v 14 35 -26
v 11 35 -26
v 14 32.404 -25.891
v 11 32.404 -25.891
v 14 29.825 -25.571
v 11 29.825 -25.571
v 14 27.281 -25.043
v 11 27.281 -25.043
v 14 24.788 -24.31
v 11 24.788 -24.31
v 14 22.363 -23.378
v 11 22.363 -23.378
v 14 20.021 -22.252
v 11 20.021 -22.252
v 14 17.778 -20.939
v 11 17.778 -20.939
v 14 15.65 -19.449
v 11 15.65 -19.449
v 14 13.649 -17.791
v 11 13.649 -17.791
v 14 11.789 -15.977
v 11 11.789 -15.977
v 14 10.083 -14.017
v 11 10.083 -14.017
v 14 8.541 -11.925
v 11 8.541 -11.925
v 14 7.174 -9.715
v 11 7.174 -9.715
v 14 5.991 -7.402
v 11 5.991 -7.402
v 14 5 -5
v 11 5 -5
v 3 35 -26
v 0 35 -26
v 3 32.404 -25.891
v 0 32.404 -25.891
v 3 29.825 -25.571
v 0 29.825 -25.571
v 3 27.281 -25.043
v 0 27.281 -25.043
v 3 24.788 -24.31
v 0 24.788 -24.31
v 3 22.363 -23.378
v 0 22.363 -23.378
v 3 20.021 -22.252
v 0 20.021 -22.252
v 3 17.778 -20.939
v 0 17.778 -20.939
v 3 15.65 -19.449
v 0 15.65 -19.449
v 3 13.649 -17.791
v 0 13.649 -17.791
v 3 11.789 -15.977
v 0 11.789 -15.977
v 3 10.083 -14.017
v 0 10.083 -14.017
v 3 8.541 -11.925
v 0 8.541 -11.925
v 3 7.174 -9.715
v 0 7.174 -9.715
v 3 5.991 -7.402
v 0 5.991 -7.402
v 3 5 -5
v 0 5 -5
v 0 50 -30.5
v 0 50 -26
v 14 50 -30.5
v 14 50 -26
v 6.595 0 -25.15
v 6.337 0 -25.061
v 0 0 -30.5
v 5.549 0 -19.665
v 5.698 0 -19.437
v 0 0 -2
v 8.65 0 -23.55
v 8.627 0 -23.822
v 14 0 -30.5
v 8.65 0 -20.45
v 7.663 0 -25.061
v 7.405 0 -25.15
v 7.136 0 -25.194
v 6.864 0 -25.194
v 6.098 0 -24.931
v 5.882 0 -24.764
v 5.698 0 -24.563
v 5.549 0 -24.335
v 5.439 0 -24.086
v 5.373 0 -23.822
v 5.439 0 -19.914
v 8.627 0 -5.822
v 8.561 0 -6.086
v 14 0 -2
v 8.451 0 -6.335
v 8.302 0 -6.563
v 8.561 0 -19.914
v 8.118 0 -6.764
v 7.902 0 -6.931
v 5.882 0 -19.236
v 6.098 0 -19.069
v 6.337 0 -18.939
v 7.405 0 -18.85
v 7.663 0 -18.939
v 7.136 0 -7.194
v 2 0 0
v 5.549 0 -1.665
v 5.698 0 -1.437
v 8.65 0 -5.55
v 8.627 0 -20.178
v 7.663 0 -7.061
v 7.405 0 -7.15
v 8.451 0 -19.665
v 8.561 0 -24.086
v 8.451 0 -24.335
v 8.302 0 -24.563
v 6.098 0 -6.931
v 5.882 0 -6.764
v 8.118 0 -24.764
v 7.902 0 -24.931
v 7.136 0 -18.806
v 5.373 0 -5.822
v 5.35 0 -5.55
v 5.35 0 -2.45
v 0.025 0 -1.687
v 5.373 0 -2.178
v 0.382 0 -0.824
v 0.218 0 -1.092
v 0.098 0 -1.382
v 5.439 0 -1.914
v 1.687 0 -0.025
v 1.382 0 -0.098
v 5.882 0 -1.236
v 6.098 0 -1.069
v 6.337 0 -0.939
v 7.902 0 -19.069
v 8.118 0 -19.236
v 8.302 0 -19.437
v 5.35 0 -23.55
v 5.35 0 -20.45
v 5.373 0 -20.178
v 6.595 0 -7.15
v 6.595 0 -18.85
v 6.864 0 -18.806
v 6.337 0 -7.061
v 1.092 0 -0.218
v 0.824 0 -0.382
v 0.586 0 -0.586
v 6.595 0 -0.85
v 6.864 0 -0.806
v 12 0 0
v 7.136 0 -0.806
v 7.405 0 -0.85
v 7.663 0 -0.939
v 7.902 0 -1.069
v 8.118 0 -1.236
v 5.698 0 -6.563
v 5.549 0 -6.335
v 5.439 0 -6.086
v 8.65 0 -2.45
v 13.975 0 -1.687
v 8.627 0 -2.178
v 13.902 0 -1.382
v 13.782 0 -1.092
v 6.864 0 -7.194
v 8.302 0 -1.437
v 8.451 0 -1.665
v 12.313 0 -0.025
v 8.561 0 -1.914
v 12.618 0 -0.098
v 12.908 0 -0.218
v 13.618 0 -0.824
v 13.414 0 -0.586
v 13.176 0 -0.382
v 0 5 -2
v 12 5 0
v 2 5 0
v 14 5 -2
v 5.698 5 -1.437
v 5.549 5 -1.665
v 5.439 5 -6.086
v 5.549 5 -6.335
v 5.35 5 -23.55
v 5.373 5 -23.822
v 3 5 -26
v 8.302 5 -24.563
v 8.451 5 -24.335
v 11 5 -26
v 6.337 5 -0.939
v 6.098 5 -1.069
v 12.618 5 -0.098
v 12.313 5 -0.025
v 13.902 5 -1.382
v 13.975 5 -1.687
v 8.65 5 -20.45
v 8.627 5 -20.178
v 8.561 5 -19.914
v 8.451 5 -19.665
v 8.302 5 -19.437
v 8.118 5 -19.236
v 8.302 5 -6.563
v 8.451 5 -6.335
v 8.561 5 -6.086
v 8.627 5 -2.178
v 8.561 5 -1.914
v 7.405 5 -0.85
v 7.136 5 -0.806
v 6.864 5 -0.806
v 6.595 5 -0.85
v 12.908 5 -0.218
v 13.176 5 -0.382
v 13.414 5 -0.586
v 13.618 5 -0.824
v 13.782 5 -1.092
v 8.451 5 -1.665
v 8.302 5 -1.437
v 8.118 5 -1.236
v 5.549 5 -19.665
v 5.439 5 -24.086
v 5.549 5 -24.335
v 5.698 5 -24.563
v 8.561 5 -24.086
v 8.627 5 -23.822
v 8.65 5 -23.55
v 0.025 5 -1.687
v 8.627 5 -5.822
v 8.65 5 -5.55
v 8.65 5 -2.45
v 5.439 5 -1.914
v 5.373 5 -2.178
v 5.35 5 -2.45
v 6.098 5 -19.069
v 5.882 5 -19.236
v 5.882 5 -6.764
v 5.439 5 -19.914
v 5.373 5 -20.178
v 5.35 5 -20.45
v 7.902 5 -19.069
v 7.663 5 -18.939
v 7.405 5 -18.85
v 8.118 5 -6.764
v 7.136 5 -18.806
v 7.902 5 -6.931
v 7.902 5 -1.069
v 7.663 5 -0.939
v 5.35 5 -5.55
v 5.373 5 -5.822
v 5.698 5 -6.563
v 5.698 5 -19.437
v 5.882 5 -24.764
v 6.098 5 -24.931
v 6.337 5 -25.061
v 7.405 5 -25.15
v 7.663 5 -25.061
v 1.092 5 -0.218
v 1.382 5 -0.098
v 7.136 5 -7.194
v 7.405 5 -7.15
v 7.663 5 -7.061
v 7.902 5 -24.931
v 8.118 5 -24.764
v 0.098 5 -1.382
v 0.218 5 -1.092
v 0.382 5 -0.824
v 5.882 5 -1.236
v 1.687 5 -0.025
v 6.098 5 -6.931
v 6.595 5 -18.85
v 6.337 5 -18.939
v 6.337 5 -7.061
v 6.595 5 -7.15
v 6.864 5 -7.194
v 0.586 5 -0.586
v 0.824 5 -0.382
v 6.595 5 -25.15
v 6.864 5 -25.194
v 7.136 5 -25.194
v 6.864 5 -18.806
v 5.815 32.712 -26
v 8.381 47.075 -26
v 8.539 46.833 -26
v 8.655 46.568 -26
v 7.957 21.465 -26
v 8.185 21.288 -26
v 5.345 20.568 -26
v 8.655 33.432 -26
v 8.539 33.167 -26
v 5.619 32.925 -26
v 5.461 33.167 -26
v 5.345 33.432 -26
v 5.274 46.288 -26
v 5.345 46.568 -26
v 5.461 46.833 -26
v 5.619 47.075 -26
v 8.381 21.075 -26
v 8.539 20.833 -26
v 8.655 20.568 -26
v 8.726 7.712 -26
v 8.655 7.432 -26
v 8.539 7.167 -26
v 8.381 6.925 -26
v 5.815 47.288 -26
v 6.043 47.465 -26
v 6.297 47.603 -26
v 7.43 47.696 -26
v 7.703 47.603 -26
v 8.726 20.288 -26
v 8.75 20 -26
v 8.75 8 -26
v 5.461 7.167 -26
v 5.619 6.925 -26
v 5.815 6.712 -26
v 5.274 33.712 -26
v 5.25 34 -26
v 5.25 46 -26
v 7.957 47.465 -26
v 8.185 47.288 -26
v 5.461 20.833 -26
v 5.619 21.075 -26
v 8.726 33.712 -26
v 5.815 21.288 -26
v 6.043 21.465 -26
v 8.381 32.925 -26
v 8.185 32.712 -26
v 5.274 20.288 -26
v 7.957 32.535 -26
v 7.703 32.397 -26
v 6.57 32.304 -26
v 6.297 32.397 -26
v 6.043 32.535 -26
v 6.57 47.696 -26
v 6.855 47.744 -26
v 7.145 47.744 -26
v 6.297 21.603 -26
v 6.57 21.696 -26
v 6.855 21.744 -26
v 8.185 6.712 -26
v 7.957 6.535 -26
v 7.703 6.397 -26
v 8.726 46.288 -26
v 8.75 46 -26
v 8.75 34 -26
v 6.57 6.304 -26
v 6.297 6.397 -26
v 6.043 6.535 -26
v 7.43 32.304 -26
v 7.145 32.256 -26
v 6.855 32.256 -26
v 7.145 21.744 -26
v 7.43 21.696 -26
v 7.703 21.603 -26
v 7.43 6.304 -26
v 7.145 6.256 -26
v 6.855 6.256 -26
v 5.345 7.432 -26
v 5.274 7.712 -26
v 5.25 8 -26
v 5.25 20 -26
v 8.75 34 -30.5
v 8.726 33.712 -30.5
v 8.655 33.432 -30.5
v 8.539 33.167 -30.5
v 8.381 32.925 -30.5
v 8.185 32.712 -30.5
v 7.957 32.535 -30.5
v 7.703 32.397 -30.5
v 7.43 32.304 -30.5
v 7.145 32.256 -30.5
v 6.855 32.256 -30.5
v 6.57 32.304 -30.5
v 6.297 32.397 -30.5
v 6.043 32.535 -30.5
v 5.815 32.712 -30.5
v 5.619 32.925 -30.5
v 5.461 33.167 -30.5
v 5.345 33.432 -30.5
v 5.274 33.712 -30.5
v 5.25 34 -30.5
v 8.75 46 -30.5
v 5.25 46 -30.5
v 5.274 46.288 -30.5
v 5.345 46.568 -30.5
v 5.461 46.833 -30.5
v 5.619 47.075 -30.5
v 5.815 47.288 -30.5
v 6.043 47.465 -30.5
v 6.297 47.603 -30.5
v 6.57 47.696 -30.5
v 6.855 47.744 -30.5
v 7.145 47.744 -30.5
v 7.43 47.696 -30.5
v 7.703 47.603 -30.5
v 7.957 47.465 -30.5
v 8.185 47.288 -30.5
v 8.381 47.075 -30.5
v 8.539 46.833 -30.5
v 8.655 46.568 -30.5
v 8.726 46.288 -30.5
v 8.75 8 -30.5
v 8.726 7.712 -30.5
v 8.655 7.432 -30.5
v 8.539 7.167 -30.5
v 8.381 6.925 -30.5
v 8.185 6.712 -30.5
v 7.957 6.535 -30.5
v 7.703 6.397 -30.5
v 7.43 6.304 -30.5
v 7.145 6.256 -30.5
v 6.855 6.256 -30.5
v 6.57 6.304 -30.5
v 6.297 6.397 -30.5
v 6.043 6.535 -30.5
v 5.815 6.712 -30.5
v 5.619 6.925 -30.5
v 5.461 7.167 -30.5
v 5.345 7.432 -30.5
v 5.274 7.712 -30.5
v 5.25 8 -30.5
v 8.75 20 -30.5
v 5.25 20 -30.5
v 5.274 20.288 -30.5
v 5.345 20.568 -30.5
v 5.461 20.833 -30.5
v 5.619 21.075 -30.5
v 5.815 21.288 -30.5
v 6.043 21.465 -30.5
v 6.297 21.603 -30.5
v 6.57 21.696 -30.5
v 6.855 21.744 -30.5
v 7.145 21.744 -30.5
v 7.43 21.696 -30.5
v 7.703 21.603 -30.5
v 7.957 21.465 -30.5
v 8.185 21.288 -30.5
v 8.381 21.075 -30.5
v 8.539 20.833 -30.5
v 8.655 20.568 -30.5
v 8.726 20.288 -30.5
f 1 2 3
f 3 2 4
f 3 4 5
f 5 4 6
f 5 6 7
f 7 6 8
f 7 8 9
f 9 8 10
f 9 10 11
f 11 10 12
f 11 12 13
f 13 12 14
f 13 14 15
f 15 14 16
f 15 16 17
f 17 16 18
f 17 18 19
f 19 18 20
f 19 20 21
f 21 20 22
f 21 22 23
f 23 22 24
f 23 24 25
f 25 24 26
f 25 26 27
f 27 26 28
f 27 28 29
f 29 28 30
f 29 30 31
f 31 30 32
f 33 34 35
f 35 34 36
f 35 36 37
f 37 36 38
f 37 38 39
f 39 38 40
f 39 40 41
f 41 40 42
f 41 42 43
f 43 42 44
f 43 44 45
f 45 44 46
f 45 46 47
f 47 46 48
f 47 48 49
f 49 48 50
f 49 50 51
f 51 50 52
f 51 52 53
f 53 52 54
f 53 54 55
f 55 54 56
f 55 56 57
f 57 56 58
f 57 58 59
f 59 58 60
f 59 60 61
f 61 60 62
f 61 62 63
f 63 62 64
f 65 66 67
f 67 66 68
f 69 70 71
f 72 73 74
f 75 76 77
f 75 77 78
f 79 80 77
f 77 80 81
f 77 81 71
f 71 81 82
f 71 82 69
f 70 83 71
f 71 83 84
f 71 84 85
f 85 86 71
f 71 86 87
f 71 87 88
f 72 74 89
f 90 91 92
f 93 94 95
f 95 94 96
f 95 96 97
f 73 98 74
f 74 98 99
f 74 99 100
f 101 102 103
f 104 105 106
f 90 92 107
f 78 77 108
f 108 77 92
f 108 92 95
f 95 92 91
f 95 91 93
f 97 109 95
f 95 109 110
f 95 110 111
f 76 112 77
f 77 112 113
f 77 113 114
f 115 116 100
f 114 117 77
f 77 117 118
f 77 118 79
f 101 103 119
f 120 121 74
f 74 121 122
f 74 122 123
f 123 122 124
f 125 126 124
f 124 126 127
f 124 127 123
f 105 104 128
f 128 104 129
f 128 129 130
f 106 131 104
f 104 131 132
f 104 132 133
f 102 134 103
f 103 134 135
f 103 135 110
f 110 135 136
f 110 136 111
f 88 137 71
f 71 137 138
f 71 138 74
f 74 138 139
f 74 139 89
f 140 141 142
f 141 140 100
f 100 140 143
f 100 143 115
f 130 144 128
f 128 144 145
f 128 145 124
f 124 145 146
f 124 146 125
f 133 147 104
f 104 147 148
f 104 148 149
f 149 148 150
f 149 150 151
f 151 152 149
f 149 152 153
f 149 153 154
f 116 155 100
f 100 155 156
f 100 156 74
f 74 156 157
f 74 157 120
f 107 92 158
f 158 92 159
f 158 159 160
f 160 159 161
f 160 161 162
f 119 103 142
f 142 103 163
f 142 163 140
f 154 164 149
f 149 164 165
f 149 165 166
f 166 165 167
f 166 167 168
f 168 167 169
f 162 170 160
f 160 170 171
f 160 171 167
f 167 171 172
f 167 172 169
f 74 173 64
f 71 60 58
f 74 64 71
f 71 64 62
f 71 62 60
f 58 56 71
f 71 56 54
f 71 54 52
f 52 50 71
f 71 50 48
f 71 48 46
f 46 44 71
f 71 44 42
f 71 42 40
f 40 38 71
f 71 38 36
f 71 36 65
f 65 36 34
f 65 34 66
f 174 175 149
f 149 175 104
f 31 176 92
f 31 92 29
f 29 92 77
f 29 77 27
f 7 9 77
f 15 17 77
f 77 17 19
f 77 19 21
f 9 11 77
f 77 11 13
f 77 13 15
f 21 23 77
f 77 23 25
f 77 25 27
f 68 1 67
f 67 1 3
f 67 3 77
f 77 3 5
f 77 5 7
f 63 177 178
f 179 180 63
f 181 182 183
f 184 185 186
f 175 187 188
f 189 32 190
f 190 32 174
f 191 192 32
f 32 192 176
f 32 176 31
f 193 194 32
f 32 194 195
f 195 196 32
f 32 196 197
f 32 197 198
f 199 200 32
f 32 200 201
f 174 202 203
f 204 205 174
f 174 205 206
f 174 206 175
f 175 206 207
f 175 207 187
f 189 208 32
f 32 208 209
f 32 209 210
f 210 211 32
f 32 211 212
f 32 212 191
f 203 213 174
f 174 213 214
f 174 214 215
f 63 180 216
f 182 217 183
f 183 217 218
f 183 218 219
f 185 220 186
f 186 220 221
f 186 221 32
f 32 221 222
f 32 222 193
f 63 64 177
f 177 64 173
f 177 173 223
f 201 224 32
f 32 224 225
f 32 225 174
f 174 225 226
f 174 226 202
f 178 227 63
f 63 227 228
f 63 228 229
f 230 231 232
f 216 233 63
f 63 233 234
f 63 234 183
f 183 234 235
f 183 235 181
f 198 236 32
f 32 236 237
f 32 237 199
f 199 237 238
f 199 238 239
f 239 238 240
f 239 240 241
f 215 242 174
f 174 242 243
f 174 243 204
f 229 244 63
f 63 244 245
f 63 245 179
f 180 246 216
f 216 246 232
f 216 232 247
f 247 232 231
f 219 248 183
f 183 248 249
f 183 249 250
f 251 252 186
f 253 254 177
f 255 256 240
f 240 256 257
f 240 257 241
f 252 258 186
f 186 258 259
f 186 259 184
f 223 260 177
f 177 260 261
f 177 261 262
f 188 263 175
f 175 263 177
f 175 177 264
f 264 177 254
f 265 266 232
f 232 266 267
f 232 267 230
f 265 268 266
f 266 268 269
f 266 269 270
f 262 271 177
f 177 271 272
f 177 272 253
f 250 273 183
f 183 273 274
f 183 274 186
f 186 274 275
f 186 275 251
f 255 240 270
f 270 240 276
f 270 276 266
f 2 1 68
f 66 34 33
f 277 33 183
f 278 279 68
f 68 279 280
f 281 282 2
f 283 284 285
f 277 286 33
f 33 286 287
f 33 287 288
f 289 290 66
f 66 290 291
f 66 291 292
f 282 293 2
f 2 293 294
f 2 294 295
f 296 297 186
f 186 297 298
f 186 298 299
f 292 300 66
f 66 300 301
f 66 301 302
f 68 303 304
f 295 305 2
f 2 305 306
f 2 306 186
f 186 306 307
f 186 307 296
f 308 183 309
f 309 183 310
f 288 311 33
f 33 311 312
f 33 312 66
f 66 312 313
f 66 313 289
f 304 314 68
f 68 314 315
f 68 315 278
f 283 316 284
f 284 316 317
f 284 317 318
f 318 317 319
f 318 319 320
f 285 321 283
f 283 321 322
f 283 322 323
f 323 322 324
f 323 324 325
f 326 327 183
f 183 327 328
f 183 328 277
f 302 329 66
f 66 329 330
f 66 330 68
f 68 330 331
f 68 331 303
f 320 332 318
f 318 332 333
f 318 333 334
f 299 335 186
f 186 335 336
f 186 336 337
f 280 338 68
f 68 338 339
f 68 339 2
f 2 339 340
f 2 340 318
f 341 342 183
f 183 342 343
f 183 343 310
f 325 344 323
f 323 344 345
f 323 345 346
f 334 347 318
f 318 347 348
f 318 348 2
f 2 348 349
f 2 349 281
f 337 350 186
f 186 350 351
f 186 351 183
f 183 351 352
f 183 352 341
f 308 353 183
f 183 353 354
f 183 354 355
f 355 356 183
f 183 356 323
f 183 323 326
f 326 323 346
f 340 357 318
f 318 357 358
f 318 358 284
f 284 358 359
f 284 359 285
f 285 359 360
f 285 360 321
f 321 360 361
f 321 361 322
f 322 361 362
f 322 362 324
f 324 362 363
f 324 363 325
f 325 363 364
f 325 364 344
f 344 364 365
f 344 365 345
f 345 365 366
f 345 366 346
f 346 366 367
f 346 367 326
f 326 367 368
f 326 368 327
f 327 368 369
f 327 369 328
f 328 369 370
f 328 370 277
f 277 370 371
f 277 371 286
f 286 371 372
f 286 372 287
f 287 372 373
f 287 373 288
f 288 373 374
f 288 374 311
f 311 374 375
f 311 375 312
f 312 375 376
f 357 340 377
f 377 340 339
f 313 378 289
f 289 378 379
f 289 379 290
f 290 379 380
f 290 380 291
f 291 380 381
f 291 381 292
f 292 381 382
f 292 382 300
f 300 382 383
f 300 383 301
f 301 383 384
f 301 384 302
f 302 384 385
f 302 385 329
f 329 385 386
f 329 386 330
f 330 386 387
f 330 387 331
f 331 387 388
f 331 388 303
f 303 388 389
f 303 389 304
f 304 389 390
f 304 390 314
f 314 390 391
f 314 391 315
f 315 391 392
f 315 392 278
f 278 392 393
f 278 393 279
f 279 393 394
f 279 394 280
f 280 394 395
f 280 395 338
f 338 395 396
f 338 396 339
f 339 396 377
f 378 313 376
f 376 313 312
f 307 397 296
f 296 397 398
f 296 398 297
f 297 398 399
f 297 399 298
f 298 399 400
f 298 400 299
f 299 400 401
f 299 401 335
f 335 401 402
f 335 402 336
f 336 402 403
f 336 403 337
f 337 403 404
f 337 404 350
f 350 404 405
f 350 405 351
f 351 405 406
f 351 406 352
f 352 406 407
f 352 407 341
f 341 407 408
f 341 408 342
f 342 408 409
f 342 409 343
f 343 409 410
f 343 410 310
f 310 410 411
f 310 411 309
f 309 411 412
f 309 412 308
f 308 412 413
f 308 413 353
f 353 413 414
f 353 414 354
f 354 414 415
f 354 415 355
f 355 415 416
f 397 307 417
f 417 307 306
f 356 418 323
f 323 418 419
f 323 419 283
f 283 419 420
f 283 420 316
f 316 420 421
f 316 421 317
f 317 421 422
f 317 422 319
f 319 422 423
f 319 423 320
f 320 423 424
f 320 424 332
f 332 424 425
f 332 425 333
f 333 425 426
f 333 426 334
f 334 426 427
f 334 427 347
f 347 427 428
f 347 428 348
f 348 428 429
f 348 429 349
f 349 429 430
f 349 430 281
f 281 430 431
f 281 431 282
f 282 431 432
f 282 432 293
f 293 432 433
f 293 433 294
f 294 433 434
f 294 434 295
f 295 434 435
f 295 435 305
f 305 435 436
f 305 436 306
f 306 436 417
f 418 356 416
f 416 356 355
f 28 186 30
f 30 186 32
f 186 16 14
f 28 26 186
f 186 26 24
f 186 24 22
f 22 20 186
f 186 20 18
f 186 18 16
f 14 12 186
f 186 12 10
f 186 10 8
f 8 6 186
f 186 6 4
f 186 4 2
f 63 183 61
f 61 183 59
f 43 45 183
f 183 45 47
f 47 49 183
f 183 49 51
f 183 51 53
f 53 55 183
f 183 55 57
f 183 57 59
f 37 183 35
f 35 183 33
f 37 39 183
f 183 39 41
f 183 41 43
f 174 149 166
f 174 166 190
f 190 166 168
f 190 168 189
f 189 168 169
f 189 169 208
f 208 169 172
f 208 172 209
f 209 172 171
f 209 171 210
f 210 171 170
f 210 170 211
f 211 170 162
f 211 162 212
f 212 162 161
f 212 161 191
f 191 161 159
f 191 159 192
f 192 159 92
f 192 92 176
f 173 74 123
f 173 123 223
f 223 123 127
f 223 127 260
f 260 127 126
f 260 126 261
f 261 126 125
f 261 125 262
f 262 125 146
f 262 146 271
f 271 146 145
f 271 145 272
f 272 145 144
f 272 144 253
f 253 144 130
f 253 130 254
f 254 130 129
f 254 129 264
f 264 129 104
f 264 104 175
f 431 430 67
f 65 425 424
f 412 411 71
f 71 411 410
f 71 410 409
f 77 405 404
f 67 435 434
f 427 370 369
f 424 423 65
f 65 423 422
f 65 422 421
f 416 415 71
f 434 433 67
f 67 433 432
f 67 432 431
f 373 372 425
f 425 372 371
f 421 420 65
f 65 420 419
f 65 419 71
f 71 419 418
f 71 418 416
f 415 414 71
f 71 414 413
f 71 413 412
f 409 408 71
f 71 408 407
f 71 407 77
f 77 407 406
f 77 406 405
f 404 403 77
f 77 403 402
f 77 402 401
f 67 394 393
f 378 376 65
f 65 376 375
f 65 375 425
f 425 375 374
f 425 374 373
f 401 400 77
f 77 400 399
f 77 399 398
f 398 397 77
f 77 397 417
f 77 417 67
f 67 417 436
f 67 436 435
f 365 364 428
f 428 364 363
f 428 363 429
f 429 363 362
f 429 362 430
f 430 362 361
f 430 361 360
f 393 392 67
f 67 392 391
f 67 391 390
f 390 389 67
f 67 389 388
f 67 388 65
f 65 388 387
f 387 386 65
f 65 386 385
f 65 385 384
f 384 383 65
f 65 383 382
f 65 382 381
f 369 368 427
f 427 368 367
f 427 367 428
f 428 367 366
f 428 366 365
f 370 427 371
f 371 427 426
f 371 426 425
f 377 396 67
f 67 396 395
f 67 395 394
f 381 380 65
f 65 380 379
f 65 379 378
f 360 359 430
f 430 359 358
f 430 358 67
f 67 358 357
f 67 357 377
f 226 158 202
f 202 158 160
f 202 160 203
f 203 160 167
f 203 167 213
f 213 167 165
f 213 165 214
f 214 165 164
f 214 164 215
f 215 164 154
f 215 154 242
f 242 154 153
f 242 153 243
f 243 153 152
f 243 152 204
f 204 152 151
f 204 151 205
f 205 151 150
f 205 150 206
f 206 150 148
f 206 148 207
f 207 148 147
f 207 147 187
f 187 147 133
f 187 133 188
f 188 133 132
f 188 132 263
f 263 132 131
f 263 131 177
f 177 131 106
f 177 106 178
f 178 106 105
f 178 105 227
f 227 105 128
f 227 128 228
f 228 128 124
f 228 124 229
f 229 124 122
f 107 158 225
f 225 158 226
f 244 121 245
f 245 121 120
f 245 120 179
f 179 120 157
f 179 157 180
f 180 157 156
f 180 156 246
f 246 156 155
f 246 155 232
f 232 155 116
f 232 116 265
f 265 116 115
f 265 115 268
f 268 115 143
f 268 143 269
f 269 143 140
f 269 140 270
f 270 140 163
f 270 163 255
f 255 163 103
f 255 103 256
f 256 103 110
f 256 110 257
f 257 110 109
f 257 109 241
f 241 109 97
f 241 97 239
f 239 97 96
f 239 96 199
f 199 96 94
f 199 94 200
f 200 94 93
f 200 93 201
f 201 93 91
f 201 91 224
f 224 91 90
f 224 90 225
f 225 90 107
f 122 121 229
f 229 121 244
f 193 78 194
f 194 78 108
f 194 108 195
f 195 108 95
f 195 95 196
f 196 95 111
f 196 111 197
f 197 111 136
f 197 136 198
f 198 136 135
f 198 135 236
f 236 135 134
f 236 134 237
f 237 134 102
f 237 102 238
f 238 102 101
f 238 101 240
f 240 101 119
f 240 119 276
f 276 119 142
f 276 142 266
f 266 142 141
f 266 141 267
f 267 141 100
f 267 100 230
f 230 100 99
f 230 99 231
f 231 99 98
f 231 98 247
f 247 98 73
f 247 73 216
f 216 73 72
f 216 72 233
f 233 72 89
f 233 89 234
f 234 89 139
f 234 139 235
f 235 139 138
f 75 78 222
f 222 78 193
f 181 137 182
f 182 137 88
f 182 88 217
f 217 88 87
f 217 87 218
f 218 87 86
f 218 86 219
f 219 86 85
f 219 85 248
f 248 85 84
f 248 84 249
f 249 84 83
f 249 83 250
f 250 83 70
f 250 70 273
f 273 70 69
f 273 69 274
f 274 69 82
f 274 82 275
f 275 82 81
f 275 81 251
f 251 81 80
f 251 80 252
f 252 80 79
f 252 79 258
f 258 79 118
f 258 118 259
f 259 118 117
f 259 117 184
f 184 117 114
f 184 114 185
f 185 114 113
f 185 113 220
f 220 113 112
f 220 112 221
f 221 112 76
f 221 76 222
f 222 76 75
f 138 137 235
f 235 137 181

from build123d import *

# Parameters (mm, degrees)
CROQUIS2_W              = 14
CROQUIS2_H              = 31
CROQUIS2_R              = 1.55
SALIENTE_EXTRUIR1_DEPTH = 50
CROQUIS3_W              = 26
CROQUIS3_H              = 45
CORTAR_EXTRUIR1_DEPTH   = 14
CORTAR_EXTRUIR2_DEPTH   = 5
SALIENTE_EXTRUIR3_DEPTH = 14
CROQUIS7_OUTSIDE_W      = 28.094
CROQUIS7_OUTSIDE_H      = 45.094
CORTAR_EXTRUIR5_DEPTH   = 45
REDONDEO1_R             = 2
CROQUIS8_W              = 14
CROQUIS8_H              = 0.5
CORTAR_EXTRUIR6_DEPTH   = 50
CORTAR_EXTRUIR7_DEPTH   = 5


with BuildPart() as part:
    # Croquis2 → Saliente-Extruir1 (new body)
    with BuildSketch(Plane(origin=(0, 0, 0), x_dir=(1, 0, 0), z_dir=(0, 1, 0))):
        with Locations((7, 15.5)):
            Rectangle(CROQUIS2_W, CROQUIS2_H)
        with Locations((7, 22)):
            Circle(CROQUIS2_R, mode=Mode.SUBTRACT)
        with Locations((7, 4)):
            Circle(CROQUIS2_R, mode=Mode.SUBTRACT)
    extrude(amount=SALIENTE_EXTRUIR1_DEPTH)

    # Croquis3 → Cortar-Extruir1 (cut)
    with BuildSketch(Plane.ZY):
        with Locations((-13, 27.5)):
            Rectangle(CROQUIS3_W, CROQUIS3_H)
    extrude(amount=-CORTAR_EXTRUIR1_DEPTH, mode=Mode.SUBTRACT)

    # Croquis4 → Cortar-Extruir2 (cut)
    with BuildSketch(Plane(origin=(0, 0, -31), x_dir=(-1, 0, 0), z_dir=(0, 0, -1))):
        with BuildLine():
            Line((-8.75, 8), (-8.75, 20))
            ThreePointArc((-8.75, 20), (-7, 21.75), (-5.25, 20))
            Line((-5.25, 20), (-5.25, 8))
            ThreePointArc((-5.25, 8), (-7, 6.25), (-8.75, 8))
        make_face()
        with BuildLine():
            Line((-8.75, 34), (-8.75, 46))
            ThreePointArc((-8.75, 46), (-7, 47.75), (-5.25, 46))
            Line((-5.25, 46), (-5.25, 34))
            ThreePointArc((-5.25, 34), (-7, 32.25), (-8.75, 34))
        make_face()
    extrude(amount=-CORTAR_EXTRUIR2_DEPTH, mode=Mode.SUBTRACT)

    # Croquis6 → Saliente-Extruir3 (add)
    with BuildSketch(Plane.ZY):
        with BuildLine():
            Line((-26, 5), (-26, 35))
            ThreePointArc((-26, 35), (-20.21590319, 16.698867767), (-5, 5))
            Line((-5, 5), (-26, 5))
        make_face()
    extrude(amount=-SALIENTE_EXTRUIR3_DEPTH)

    # Croquis7 outside → Cortar-Extruir5 (cut)
    with BuildSketch(Plane(origin=(0, 50, 0), x_dir=(1, 0, 0), z_dir=(0, 1, 0))):
        with Locations((7, 15.5)):
            Rectangle(CROQUIS7_OUTSIDE_W, CROQUIS7_OUTSIDE_H)
        Polygon((0, 26), (0, 0), (3, 0), (3, 26), (11, 26), (11, 0), (14, 0), (14, 26), (14, 31), (0, 31), align=None, mode=Mode.SUBTRACT)
    extrude(amount=-CORTAR_EXTRUIR5_DEPTH, mode=Mode.SUBTRACT)

    # Redondeo1
    redondeo1_edges = [part.edges().sort_by_distance(p)[0] for p in [
        (14, 2.5, 0),
        (0, 2.5, 0),
    ]]
    fillet(redondeo1_edges, radius=REDONDEO1_R)

    # Croquis8 → Cortar-Extruir6 (cut)
    with BuildSketch(Plane(origin=(0, 50, 0), x_dir=(1, 0, 0), z_dir=(0, 1, 0))):
        with Locations((7, 30.75)):
            Rectangle(CROQUIS8_W, CROQUIS8_H)
    extrude(amount=-CORTAR_EXTRUIR6_DEPTH, mode=Mode.SUBTRACT)

    # Croquis9 → Cortar-Extruir7 (cut)
    with BuildSketch(Plane.XZ):
        with BuildLine():
            Line((8.65, -20.45), (8.65, -23.55))
            ThreePointArc((8.65, -23.55), (7, -25.2), (5.35, -23.55))
            Line((5.35, -23.55), (5.35, -20.45))
            ThreePointArc((5.35, -20.45), (7, -18.8), (8.65, -20.45))
        make_face()
        with BuildLine():
            Line((8.65, -2.45), (8.65, -5.55))
            ThreePointArc((8.65, -5.55), (7, -7.2), (5.35, -5.55))
            Line((5.35, -5.55), (5.35, -2.45))
            ThreePointArc((5.35, -2.45), (7, -0.8), (8.65, -2.45))
        make_face()
    extrude(amount=-CORTAR_EXTRUIR7_DEPTH, mode=Mode.SUBTRACT)


solid = part.part
